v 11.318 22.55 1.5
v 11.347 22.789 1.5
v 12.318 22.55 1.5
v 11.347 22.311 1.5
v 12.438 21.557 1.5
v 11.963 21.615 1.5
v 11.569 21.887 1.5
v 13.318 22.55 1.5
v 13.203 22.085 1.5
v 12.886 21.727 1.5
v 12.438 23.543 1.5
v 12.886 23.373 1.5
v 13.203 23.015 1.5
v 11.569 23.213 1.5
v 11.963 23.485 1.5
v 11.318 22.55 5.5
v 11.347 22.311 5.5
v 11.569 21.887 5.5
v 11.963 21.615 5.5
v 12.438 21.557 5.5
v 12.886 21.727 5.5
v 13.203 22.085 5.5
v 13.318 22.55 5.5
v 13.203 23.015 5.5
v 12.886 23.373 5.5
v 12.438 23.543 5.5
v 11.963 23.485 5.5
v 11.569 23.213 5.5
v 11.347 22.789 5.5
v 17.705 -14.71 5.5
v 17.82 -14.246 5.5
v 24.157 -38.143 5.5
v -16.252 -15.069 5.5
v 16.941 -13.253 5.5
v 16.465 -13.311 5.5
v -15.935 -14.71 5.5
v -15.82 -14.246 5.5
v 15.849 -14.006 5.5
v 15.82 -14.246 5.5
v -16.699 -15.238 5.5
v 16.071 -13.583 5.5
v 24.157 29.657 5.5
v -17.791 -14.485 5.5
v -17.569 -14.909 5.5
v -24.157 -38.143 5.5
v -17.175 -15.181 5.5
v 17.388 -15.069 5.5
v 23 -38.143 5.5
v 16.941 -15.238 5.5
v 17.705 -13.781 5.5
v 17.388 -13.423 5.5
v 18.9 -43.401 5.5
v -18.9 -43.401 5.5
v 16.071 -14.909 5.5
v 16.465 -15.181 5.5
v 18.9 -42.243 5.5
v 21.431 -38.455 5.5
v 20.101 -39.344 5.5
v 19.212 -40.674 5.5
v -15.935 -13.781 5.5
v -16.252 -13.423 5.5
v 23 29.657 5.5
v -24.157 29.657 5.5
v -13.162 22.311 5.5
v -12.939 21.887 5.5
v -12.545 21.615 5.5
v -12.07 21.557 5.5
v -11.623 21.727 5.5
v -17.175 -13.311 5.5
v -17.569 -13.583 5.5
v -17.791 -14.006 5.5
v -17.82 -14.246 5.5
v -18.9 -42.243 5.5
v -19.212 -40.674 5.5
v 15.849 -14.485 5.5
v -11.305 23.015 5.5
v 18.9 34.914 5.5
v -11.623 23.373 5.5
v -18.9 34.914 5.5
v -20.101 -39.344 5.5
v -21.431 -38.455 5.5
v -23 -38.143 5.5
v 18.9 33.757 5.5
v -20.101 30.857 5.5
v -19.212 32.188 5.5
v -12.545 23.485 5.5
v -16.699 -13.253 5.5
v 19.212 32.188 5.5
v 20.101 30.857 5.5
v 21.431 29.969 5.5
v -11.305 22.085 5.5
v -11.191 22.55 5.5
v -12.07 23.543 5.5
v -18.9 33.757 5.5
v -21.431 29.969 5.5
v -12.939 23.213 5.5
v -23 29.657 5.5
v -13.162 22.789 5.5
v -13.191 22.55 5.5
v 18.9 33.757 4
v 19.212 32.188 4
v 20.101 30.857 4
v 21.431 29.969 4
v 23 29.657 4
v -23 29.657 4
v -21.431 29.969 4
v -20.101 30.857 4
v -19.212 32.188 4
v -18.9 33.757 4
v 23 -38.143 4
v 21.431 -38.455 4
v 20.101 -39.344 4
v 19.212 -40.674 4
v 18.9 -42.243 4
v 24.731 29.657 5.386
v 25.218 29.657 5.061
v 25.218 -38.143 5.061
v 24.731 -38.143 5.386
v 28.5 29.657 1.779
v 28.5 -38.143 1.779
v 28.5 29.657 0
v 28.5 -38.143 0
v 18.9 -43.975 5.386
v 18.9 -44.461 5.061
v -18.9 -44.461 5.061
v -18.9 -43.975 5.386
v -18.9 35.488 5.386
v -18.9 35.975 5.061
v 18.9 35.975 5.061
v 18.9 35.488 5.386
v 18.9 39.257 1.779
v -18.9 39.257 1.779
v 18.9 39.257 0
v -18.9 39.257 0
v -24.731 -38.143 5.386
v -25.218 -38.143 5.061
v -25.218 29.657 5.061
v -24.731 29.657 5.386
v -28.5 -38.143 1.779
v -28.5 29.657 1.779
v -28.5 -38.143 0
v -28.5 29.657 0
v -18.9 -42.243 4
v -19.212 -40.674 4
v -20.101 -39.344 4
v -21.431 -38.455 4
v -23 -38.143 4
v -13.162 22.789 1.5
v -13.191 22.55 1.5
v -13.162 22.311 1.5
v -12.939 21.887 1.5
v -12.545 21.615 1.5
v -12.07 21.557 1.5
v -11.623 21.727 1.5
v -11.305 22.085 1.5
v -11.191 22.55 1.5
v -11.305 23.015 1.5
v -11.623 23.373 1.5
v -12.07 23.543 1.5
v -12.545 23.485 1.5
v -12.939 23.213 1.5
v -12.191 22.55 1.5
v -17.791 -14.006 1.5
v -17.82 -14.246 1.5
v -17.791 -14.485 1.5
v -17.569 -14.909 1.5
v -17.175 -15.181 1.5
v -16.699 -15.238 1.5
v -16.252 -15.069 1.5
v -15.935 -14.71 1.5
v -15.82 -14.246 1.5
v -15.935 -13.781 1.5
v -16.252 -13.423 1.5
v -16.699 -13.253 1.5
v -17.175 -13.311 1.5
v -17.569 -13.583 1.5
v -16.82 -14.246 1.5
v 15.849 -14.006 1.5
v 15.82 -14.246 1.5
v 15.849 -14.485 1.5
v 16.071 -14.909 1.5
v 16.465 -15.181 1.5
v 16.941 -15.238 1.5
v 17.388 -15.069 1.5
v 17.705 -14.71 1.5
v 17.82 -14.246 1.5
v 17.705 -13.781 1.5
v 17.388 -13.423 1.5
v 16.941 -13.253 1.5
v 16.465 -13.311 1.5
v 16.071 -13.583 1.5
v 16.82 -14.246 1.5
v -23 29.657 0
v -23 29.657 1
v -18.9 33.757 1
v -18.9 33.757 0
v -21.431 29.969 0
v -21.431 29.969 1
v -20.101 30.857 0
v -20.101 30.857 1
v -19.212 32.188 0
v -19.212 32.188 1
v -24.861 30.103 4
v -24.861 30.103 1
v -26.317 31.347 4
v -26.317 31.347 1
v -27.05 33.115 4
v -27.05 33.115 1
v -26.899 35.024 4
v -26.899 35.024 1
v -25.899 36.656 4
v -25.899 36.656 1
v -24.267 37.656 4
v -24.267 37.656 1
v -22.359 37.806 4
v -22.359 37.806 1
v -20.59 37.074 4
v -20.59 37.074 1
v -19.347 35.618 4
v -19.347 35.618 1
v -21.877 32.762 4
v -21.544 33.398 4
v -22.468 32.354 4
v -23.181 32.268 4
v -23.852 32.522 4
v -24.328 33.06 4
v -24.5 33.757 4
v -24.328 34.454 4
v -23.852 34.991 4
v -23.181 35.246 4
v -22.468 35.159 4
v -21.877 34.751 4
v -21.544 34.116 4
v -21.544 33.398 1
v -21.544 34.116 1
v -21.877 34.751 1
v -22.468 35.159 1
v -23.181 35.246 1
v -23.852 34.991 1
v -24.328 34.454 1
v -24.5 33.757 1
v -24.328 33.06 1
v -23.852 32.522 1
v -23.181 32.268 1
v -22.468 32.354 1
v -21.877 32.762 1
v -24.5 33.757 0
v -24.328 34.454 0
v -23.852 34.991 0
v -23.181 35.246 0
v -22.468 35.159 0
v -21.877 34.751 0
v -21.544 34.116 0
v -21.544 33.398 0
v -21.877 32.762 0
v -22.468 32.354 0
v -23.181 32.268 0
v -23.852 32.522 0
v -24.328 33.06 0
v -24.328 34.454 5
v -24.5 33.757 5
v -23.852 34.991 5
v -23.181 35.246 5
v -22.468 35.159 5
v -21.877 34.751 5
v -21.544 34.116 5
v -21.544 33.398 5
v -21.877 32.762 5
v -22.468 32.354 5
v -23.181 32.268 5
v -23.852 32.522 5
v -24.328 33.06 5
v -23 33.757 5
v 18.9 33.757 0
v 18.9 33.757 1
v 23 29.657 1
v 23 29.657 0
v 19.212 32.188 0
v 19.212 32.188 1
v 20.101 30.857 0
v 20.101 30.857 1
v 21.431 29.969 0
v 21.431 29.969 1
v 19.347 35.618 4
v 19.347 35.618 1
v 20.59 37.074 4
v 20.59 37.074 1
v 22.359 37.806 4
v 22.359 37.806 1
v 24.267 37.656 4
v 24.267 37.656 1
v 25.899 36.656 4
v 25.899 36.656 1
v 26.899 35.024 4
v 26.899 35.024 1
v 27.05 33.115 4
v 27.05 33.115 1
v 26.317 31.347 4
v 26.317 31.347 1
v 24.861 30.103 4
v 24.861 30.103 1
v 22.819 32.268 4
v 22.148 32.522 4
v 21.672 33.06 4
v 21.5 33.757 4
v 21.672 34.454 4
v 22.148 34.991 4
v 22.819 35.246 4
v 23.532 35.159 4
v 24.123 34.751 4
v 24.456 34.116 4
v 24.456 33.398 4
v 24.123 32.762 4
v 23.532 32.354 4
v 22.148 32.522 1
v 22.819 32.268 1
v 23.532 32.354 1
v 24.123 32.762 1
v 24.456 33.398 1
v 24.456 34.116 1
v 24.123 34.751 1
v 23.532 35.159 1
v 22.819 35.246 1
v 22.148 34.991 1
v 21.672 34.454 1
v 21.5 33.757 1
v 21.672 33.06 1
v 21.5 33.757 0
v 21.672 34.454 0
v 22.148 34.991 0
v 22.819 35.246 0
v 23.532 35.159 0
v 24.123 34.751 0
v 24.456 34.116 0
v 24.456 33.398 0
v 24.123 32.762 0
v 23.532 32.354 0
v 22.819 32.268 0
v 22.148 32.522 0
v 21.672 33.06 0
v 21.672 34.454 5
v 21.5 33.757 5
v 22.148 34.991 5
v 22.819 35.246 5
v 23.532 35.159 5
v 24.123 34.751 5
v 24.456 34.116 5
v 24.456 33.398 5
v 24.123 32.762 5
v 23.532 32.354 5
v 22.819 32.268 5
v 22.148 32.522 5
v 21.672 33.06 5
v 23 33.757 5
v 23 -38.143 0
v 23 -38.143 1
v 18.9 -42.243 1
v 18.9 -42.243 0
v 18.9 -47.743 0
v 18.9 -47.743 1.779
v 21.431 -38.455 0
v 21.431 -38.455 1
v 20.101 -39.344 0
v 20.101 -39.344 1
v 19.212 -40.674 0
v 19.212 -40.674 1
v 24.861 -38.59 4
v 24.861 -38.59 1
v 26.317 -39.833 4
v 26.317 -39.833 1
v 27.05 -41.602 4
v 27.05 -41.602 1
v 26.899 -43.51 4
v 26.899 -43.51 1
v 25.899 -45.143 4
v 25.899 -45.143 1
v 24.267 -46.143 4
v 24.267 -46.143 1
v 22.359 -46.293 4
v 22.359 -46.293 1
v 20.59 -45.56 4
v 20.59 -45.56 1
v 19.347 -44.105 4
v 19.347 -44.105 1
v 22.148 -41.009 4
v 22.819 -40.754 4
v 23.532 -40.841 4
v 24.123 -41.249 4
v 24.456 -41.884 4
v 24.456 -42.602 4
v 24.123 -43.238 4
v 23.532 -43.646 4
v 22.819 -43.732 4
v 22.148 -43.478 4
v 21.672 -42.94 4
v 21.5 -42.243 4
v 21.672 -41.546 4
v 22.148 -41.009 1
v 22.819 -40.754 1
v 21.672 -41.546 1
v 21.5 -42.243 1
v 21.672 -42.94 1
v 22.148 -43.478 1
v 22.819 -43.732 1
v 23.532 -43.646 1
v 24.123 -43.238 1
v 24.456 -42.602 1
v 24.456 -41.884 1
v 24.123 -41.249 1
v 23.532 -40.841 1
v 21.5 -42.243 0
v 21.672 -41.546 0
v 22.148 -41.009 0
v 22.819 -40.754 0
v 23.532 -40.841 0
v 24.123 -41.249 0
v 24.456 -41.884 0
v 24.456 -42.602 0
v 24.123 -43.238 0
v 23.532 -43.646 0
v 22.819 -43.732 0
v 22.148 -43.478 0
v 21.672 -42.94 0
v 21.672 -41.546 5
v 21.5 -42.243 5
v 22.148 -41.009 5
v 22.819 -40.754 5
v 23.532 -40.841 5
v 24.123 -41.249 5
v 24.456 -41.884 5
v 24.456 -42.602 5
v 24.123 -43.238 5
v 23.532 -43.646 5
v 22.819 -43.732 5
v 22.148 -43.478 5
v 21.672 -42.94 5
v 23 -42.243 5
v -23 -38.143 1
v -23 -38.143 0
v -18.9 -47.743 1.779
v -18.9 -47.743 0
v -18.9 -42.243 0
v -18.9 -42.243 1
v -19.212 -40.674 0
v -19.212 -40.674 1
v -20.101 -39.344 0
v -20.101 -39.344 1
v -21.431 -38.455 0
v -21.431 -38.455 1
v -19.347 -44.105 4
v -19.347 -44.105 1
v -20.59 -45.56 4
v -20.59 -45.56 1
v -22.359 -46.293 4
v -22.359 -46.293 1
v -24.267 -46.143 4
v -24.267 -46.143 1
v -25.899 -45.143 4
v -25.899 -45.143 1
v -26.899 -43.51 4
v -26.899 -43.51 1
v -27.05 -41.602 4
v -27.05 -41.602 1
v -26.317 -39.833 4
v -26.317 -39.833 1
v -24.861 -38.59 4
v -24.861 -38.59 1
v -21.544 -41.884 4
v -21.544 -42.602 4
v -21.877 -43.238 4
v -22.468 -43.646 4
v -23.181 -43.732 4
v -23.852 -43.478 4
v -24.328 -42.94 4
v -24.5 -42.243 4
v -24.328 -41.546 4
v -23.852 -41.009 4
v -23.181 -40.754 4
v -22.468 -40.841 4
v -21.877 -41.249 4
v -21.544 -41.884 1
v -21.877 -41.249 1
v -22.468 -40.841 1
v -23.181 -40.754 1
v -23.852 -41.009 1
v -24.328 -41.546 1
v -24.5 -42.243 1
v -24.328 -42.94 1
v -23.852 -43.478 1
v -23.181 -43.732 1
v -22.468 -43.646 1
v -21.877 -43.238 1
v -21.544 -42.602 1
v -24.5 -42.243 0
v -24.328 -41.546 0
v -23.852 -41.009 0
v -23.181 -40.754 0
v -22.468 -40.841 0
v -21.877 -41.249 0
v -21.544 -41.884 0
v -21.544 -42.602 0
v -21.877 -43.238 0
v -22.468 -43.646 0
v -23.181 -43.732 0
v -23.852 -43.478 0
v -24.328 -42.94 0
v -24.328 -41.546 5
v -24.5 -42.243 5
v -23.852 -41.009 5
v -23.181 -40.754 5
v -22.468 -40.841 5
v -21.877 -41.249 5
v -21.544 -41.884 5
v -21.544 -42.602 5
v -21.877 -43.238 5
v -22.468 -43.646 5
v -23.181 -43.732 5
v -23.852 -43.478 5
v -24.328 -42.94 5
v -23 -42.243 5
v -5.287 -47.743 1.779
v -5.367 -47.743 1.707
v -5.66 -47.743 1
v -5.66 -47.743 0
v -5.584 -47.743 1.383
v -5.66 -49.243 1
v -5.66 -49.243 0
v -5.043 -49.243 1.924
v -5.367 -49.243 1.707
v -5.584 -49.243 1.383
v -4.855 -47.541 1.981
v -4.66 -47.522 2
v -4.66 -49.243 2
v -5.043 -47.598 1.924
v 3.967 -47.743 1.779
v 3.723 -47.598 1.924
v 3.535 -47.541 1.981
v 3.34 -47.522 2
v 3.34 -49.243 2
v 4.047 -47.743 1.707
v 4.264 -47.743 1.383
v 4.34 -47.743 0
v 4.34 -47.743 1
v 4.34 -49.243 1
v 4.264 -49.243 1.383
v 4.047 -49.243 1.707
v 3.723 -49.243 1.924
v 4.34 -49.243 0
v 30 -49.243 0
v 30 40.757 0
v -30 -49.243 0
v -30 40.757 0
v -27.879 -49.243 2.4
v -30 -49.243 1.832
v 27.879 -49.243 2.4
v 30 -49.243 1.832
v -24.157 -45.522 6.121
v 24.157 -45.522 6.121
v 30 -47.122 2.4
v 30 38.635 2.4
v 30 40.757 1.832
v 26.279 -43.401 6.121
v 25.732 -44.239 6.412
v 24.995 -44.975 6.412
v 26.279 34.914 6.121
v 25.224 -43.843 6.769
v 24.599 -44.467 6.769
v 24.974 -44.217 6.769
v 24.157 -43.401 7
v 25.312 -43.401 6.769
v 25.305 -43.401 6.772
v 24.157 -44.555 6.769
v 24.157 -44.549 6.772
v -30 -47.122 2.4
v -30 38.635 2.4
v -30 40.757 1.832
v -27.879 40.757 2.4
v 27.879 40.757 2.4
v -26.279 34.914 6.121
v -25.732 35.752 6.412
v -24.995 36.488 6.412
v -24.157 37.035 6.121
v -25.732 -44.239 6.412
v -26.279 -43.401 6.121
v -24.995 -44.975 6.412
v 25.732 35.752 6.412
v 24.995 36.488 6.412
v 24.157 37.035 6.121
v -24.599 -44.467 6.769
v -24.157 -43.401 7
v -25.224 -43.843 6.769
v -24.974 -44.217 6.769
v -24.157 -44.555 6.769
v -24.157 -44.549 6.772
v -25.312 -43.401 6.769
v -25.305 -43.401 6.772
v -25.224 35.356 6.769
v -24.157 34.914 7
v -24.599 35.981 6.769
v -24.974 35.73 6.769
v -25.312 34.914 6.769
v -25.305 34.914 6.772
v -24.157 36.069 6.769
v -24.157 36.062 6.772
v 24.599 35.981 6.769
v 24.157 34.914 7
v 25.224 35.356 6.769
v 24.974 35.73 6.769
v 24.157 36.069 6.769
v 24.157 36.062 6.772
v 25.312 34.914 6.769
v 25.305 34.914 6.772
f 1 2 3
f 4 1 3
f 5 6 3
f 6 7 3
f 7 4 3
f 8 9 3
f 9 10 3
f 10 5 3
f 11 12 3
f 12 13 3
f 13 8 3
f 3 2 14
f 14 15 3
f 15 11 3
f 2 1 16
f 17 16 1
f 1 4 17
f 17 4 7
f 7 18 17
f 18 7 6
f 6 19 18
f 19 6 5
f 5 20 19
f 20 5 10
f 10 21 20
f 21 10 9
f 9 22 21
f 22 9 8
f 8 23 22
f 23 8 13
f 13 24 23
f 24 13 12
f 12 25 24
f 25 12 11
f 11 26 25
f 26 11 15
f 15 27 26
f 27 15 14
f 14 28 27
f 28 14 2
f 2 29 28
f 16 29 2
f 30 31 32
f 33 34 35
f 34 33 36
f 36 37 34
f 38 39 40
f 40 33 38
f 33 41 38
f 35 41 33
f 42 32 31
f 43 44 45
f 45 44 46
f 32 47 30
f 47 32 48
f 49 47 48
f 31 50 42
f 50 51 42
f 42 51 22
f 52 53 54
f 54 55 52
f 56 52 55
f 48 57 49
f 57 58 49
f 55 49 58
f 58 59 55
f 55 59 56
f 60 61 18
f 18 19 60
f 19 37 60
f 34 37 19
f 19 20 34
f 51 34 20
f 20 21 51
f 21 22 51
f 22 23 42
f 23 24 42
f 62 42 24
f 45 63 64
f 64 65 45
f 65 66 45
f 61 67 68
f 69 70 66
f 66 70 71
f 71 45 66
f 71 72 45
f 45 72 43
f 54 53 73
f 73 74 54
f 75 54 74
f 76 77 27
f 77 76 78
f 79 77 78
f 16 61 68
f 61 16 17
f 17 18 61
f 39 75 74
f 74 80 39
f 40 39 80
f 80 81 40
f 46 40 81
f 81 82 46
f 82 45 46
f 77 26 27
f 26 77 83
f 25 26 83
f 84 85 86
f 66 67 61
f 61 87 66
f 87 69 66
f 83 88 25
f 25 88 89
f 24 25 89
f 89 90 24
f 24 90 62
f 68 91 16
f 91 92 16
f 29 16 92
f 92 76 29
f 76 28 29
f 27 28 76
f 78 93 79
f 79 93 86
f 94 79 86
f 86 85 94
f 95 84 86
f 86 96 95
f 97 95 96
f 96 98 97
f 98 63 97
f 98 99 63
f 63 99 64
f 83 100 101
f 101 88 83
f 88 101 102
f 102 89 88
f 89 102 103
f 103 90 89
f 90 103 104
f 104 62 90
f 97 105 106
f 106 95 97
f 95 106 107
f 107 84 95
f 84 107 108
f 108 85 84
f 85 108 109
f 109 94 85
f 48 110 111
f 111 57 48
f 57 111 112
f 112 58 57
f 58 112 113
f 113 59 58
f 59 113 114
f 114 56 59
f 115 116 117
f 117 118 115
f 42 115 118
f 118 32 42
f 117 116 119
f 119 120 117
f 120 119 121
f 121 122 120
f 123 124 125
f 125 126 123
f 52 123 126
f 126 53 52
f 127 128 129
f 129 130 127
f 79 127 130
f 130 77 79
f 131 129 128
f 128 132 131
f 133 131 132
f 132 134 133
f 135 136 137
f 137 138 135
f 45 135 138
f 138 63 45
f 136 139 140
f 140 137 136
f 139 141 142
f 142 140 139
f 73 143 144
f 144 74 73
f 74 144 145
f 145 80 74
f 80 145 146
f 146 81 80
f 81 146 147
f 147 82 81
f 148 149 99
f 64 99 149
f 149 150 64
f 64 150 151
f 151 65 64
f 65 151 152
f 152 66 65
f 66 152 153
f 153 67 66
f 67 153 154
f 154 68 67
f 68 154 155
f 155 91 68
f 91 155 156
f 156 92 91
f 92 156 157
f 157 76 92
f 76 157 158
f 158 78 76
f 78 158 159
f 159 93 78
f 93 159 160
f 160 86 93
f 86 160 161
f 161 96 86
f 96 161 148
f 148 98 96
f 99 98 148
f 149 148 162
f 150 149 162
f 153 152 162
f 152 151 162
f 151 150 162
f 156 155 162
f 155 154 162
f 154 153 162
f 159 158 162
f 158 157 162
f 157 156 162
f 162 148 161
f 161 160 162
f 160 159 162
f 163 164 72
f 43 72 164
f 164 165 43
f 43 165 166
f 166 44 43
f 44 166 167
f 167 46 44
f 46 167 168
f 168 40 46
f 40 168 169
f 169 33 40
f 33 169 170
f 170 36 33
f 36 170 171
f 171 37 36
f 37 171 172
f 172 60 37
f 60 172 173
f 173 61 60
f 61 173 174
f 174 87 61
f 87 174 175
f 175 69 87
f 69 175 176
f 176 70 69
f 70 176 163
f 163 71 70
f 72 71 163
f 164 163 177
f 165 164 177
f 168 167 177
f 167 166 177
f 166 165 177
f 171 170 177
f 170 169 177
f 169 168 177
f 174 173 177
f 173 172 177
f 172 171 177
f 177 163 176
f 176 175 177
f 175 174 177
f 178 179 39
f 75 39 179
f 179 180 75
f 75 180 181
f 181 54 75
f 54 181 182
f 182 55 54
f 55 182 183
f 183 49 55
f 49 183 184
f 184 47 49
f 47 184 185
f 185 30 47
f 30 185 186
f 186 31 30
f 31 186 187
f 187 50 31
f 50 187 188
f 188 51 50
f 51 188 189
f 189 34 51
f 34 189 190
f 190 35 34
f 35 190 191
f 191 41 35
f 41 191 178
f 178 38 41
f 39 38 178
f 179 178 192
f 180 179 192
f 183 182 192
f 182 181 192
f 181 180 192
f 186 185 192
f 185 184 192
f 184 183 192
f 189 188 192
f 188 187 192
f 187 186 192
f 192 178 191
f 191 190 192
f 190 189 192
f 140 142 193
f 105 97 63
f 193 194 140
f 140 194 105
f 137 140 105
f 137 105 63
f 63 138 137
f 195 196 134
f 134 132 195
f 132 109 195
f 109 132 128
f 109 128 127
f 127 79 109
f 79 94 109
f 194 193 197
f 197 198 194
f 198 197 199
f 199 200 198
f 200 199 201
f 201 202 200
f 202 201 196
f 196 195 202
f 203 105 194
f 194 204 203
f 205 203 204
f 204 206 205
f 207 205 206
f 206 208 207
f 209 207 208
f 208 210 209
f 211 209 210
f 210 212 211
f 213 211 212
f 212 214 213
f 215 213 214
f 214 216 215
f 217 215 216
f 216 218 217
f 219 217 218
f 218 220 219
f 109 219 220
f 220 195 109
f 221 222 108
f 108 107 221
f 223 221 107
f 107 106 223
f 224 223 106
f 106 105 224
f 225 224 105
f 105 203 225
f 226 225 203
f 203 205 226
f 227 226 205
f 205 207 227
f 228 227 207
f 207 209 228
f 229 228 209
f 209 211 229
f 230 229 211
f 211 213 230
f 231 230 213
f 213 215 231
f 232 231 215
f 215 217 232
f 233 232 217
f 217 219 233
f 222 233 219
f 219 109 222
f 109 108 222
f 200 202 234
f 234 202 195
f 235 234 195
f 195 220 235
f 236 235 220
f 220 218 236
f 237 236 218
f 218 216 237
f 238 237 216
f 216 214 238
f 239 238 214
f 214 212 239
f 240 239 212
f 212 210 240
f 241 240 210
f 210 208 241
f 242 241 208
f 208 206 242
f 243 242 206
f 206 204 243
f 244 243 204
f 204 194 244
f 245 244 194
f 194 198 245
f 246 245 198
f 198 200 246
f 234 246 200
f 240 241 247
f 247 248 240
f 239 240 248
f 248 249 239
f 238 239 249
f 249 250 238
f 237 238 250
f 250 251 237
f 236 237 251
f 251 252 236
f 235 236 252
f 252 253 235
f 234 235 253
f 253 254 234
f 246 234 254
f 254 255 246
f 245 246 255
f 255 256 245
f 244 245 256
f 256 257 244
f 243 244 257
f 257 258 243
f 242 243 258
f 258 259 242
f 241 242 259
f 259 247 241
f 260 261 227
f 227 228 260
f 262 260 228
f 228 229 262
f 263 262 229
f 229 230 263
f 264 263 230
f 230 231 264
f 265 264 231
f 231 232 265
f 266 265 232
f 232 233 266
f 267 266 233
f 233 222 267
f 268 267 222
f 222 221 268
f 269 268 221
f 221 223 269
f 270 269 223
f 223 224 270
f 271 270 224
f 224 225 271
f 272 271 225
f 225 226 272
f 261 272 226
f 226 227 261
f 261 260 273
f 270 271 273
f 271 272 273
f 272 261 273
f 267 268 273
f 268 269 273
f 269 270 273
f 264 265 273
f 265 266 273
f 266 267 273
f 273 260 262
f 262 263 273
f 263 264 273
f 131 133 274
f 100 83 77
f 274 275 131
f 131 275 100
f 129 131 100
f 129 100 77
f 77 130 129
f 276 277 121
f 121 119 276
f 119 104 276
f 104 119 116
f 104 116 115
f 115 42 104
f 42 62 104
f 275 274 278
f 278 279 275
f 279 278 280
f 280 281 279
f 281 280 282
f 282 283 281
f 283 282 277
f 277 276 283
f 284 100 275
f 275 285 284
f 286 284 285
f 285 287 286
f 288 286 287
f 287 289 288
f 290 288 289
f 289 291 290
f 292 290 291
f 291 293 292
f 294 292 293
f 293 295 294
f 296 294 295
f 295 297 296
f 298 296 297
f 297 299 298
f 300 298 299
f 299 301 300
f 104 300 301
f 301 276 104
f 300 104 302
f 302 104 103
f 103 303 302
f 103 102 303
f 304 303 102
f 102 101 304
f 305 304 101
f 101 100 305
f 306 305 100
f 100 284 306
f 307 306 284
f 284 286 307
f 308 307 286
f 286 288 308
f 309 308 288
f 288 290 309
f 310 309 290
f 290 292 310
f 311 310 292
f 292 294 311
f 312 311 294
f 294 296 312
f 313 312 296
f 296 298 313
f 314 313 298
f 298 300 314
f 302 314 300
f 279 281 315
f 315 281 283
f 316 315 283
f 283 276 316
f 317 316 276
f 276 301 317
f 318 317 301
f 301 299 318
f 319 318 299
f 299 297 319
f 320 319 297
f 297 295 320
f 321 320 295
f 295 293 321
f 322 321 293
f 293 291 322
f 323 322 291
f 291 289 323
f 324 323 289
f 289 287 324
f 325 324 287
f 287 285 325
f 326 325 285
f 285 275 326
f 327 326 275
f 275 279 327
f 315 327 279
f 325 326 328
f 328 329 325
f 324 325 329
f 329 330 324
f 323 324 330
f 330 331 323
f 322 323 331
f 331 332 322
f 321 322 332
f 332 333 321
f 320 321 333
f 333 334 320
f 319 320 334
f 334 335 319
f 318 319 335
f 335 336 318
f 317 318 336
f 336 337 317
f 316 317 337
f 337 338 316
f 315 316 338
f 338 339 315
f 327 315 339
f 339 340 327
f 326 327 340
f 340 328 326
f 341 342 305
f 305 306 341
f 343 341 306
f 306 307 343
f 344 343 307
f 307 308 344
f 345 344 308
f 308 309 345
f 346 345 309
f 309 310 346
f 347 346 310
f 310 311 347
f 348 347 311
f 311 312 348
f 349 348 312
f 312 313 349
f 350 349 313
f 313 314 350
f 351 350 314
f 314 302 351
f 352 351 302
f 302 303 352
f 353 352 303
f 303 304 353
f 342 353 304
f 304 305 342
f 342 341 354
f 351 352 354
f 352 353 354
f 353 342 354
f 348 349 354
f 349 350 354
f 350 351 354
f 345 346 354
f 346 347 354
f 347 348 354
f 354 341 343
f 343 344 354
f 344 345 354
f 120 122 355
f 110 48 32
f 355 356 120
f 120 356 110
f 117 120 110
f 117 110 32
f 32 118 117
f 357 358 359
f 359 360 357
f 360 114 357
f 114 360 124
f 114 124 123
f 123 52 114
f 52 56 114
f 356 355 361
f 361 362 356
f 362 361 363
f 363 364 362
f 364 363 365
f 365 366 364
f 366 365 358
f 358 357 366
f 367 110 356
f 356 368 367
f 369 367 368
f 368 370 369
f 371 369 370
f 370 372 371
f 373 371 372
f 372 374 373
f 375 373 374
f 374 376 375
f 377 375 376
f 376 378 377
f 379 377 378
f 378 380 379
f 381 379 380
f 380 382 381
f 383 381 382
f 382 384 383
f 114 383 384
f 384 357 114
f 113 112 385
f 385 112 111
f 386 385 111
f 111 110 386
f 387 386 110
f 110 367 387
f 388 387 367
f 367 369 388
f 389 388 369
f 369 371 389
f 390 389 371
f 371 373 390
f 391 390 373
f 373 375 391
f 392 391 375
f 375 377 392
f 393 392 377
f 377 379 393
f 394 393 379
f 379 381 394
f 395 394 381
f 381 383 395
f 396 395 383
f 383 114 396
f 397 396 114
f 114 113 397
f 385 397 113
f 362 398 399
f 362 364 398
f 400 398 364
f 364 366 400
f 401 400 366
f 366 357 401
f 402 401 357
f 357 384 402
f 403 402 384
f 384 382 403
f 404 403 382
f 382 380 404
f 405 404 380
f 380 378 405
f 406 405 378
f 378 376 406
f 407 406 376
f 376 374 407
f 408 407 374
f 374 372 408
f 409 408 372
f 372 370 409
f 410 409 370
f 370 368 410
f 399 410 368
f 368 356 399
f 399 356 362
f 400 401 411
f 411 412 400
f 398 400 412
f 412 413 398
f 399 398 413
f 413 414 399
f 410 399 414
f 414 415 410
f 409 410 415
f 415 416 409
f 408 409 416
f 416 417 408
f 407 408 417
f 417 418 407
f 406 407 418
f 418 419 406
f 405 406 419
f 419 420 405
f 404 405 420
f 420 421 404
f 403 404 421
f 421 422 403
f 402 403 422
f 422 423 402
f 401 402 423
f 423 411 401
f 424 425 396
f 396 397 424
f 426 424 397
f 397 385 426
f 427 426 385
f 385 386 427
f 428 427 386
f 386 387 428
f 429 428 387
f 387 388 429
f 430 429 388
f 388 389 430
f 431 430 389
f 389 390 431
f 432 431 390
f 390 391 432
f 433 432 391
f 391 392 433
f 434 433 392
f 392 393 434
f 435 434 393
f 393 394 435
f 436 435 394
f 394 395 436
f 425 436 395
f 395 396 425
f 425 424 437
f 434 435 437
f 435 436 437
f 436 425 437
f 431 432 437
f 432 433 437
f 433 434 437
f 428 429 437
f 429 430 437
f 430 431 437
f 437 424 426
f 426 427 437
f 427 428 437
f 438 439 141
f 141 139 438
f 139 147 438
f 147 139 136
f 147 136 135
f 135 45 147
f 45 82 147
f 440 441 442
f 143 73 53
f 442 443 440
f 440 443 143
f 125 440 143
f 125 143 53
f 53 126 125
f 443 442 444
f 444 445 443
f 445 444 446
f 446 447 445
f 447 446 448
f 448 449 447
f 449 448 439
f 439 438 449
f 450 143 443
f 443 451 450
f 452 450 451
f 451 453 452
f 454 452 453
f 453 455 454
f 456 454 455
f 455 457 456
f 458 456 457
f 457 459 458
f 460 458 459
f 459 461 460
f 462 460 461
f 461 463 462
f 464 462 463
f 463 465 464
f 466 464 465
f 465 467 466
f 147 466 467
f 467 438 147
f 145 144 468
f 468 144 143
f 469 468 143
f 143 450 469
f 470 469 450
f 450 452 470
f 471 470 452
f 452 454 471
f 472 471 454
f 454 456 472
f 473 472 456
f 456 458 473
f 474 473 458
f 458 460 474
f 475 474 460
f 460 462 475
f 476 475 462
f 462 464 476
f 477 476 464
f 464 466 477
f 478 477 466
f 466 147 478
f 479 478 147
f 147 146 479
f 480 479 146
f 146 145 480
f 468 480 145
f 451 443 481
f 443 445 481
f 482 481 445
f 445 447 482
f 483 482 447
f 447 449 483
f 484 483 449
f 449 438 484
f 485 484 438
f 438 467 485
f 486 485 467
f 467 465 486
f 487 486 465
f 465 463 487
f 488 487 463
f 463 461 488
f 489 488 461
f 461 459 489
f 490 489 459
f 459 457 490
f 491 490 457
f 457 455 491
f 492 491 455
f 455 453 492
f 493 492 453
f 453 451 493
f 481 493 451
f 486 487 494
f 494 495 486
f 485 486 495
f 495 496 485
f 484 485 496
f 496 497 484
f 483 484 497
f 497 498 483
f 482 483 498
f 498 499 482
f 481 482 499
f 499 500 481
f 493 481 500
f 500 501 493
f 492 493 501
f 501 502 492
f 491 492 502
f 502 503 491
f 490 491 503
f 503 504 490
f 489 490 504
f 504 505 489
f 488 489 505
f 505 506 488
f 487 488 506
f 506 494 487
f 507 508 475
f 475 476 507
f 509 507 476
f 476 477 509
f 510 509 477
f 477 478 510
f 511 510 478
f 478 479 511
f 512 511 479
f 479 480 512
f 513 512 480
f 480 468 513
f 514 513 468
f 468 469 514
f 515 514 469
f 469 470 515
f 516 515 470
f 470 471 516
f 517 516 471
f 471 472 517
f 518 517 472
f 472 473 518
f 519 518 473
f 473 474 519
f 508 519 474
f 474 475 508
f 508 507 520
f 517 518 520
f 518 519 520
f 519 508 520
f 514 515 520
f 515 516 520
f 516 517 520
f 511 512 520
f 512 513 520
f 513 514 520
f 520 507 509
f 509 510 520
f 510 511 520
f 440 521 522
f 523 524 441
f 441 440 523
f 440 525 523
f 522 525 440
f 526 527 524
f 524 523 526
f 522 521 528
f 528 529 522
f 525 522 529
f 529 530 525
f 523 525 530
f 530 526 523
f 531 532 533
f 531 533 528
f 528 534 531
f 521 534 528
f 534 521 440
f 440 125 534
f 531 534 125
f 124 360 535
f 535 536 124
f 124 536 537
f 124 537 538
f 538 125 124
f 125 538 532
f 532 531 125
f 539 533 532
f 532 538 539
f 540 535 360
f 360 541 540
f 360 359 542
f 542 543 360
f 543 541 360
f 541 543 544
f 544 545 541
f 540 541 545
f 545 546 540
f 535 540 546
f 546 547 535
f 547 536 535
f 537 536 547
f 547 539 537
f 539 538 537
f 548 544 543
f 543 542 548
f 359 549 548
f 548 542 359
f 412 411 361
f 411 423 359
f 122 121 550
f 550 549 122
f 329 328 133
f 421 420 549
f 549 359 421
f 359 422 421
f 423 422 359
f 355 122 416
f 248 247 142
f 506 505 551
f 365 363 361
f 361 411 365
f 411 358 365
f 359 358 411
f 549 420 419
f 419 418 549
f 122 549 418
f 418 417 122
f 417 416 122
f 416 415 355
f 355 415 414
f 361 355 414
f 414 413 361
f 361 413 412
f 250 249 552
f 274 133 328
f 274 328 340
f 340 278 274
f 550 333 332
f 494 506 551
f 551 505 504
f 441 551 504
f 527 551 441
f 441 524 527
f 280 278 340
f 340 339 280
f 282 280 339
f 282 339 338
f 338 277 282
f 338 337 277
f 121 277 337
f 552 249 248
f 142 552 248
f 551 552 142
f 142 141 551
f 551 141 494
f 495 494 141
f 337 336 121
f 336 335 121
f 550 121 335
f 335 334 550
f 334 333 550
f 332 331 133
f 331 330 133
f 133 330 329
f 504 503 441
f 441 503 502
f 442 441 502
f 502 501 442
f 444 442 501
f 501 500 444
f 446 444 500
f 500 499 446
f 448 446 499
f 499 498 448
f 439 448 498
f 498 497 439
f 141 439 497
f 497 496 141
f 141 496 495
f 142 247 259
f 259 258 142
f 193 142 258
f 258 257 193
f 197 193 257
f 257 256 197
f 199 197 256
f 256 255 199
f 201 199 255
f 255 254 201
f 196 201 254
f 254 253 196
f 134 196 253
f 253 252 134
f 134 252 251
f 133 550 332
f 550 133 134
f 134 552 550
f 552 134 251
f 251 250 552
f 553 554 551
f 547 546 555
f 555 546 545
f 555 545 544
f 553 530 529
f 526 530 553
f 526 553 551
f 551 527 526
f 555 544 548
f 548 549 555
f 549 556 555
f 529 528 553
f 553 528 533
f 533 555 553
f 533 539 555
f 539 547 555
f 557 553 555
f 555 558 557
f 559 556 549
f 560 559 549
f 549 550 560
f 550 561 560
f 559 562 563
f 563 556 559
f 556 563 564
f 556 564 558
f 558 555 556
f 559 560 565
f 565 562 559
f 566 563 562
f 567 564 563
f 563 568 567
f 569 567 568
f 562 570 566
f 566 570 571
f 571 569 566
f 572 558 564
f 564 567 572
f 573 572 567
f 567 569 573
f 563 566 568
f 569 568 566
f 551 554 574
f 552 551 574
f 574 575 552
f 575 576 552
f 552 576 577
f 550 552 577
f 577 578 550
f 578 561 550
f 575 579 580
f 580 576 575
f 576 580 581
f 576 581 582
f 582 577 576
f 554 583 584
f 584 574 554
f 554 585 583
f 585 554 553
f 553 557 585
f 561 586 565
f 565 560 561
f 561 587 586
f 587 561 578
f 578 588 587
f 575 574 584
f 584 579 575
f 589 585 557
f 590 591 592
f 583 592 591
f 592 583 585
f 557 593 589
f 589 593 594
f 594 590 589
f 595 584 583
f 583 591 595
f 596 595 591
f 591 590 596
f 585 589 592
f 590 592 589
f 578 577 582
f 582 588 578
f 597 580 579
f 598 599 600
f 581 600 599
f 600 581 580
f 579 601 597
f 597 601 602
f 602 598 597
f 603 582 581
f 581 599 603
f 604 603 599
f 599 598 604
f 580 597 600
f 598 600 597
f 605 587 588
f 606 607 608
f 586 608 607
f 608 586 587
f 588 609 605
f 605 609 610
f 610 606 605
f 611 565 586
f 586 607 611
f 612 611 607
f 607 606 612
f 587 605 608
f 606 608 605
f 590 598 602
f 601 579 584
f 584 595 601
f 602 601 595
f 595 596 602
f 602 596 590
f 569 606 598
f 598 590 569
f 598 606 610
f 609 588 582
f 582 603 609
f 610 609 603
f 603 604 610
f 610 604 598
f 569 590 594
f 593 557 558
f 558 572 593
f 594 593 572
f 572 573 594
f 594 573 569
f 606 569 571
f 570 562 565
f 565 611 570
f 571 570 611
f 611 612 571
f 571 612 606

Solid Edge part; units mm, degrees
sketch "Sketch1" plane through (0, 0, 0) normal (0, 0, 1) x (1, 0, 0)
  line L0 (30, -49.2434) -> (-30, -49.2434)
  line L1 (-30, -49.2434) -> (-30, 40.7566)
  line L2 (-30, 40.7566) -> (30, 40.7566)
  line L3 (30, 40.7566) -> (30, -49.2434)
  dimension "D1" = 90
  dimension "D2" = 60
extrude "Protrusion1" add sketch "Sketch1" along normal blind 7
chamfer "Chamfer_1" distance 4.6 angle 45 4 edges at (0, -49.2434, 7) (30, -4.2434, 7) (0, 40.7566, 7) (-30, -4.2434, 7)
fillet "Round_1" radius 3 8 edges at (-27.7, 38.4566, 4.7) (0, 36.1566, 7) (-25.4, -4.2434, 7) (-27.7, -46.9434, 4.7) (0, -44.6434, 7) (27.7, -46.9434, 4.7) (25.4, -4.2434, 7) (27.7, 38.4566, 4.7)
shell "Thinwall_1" thickness 1.5 removed faces 1 at (20.6, -33.3434, 0)
sketch "Sketch2" plane through (0, -4.1731, 5.5) normal (0, 0, -1) x (-1, 0, 0)
  circle A0 centre (-12.3176, 26.7231) radius 1
  circle A1 centre (12.1907, 26.7231) radius 1
  circle A2 centre (16.82, -10.0727) radius 1
  circle A3 centre (-16.82, -10.0727) radius 1
  dimension "D1" = 0.5
extrude "ExtrudedProtrusion_2" add sketch "Sketch2" along normal blind 4
sketch "Sketch3" plane through (0, 0, 0) normal (0, 0, 1) x (1, 0, 0)
  line L0 (-23, 29.6566) -> (-30, 29.6566)
  line L1 (-30, 29.6566) -> (-30, 40.7566)
  line L2 (-18.9, 40.7566) -> (-30, 40.7566)
  line L3 (-18.9, 33.7566) -> (-18.9, 40.7566)
  arc A0 (-23, 29.6566) -> (-18.9, 33.7566) centre (-23, 33.7566) ccw
  line L4 (18.9, 33.7566) -> (18.9, 40.7566)
  line L5 (18.9, 40.7566) -> (30, 40.7566)
  line L6 (30, 29.6566) -> (30, 40.7566)
  line L7 (23, 29.6566) -> (30, 29.6566)
  arc A1 (18.9, 33.7566) -> (23, 29.6566) centre (23, 33.7566) ccw
  line L8 (23, -38.1434) -> (30, -38.1434)
  line L9 (30, -38.1434) -> (30, -49.2434)
  line L10 (18.9, -49.2434) -> (30, -49.2434)
  line L11 (18.9, -42.2434) -> (18.9, -49.2434)
  arc A2 (23, -38.1434) -> (18.9, -42.2434) centre (23, -42.2434) ccw
  line L12 (-23, -38.1434) -> (-30, -38.1434)
  line L13 (-30, -38.1434) -> (-30, -49.2434)
  line L14 (-18.9, -49.2434) -> (-30, -49.2434)
  line L15 (-18.9, -42.2434) -> (-18.9, -49.2434)
  arc A3 (-23, -38.1434) -> (-18.9, -42.2434) centre (-23, -42.2434) cw
  dimension "D1" = 7
  dimension "D2" = 7
  dimension "D3" = 7
  dimension "D4" = 7
  dimension "D5" = 7
  dimension "D6" = 7
  dimension "D7" = 7
extrude "Protrusion2" add sketch "Sketch3" along normal up to next
sketch "Sketch4" plane through (0, -4.4902, 1) normal (0, 0, -1) x (-1, 0, 0)
  circle A0 centre (-23, -37.7532) radius 4.1
  circle A1 centre (23, -37.7532) radius 4.1
  circle A2 centre (23, 38.2468) radius 4.1
  circle A3 centre (-23, 38.2468) radius 4.1
extrude "ExtrudedCutout_1" cut sketch "Sketch4" against normal blind 3
sketch "Sketch5" plane through (0, -4.2434, 0) normal (0, 0, -1) x (-1, 0, 0)
  circle A0 centre (-23, -38) radius 1.5
  circle A1 centre (23, -38) radius 1.5
  circle A2 centre (23, 38) radius 1.5
  circle A3 centre (-23, 38) radius 1.5
  dimension "D1" = 59.1
  dimension "D2" = 38.64
  dimension "D3" = 7
  dimension "D4" = 7
  dimension "D5" = 2.5
  dimension "D6" = 2.5
  dimension "D7" = 15.3042
  dimension "D8" = 15.3042
  dimension "D9" = 9.32
  dimension "D10" = 8
  dimension "D11" = 9
extrude "ExtrudedCutout_2" cut sketch "Sketch5" against normal blind 5
sketch "Sketch6" plane through (0, -49.2434, 1.2) normal (0, -1, 0) x (-1, 0, 0)
  line L0 (-3.34, -0.8) -> (4.66, -0.8)
  line L1 (5.66, 0.2) -> (5.66, 1.2)
  line L2 (5.66, 1.2) -> (-4.34, 1.2)
  line L3 (-4.34, 0.2) -> (-4.34, 1.2)
  arc A0 (4.66, -0.8) -> (5.66, 0.2) centre (4.66, 0.2) ccw
  arc A1 (-4.34, 0.2) -> (-3.34, -0.8) centre (-3.34, 0.2) ccw
  dimension "D1" = 2
  dimension "D2" = 2
  dimension "D3" = 8
extrude "Cutout1" cut sketch "Sketch6" against normal up to next
